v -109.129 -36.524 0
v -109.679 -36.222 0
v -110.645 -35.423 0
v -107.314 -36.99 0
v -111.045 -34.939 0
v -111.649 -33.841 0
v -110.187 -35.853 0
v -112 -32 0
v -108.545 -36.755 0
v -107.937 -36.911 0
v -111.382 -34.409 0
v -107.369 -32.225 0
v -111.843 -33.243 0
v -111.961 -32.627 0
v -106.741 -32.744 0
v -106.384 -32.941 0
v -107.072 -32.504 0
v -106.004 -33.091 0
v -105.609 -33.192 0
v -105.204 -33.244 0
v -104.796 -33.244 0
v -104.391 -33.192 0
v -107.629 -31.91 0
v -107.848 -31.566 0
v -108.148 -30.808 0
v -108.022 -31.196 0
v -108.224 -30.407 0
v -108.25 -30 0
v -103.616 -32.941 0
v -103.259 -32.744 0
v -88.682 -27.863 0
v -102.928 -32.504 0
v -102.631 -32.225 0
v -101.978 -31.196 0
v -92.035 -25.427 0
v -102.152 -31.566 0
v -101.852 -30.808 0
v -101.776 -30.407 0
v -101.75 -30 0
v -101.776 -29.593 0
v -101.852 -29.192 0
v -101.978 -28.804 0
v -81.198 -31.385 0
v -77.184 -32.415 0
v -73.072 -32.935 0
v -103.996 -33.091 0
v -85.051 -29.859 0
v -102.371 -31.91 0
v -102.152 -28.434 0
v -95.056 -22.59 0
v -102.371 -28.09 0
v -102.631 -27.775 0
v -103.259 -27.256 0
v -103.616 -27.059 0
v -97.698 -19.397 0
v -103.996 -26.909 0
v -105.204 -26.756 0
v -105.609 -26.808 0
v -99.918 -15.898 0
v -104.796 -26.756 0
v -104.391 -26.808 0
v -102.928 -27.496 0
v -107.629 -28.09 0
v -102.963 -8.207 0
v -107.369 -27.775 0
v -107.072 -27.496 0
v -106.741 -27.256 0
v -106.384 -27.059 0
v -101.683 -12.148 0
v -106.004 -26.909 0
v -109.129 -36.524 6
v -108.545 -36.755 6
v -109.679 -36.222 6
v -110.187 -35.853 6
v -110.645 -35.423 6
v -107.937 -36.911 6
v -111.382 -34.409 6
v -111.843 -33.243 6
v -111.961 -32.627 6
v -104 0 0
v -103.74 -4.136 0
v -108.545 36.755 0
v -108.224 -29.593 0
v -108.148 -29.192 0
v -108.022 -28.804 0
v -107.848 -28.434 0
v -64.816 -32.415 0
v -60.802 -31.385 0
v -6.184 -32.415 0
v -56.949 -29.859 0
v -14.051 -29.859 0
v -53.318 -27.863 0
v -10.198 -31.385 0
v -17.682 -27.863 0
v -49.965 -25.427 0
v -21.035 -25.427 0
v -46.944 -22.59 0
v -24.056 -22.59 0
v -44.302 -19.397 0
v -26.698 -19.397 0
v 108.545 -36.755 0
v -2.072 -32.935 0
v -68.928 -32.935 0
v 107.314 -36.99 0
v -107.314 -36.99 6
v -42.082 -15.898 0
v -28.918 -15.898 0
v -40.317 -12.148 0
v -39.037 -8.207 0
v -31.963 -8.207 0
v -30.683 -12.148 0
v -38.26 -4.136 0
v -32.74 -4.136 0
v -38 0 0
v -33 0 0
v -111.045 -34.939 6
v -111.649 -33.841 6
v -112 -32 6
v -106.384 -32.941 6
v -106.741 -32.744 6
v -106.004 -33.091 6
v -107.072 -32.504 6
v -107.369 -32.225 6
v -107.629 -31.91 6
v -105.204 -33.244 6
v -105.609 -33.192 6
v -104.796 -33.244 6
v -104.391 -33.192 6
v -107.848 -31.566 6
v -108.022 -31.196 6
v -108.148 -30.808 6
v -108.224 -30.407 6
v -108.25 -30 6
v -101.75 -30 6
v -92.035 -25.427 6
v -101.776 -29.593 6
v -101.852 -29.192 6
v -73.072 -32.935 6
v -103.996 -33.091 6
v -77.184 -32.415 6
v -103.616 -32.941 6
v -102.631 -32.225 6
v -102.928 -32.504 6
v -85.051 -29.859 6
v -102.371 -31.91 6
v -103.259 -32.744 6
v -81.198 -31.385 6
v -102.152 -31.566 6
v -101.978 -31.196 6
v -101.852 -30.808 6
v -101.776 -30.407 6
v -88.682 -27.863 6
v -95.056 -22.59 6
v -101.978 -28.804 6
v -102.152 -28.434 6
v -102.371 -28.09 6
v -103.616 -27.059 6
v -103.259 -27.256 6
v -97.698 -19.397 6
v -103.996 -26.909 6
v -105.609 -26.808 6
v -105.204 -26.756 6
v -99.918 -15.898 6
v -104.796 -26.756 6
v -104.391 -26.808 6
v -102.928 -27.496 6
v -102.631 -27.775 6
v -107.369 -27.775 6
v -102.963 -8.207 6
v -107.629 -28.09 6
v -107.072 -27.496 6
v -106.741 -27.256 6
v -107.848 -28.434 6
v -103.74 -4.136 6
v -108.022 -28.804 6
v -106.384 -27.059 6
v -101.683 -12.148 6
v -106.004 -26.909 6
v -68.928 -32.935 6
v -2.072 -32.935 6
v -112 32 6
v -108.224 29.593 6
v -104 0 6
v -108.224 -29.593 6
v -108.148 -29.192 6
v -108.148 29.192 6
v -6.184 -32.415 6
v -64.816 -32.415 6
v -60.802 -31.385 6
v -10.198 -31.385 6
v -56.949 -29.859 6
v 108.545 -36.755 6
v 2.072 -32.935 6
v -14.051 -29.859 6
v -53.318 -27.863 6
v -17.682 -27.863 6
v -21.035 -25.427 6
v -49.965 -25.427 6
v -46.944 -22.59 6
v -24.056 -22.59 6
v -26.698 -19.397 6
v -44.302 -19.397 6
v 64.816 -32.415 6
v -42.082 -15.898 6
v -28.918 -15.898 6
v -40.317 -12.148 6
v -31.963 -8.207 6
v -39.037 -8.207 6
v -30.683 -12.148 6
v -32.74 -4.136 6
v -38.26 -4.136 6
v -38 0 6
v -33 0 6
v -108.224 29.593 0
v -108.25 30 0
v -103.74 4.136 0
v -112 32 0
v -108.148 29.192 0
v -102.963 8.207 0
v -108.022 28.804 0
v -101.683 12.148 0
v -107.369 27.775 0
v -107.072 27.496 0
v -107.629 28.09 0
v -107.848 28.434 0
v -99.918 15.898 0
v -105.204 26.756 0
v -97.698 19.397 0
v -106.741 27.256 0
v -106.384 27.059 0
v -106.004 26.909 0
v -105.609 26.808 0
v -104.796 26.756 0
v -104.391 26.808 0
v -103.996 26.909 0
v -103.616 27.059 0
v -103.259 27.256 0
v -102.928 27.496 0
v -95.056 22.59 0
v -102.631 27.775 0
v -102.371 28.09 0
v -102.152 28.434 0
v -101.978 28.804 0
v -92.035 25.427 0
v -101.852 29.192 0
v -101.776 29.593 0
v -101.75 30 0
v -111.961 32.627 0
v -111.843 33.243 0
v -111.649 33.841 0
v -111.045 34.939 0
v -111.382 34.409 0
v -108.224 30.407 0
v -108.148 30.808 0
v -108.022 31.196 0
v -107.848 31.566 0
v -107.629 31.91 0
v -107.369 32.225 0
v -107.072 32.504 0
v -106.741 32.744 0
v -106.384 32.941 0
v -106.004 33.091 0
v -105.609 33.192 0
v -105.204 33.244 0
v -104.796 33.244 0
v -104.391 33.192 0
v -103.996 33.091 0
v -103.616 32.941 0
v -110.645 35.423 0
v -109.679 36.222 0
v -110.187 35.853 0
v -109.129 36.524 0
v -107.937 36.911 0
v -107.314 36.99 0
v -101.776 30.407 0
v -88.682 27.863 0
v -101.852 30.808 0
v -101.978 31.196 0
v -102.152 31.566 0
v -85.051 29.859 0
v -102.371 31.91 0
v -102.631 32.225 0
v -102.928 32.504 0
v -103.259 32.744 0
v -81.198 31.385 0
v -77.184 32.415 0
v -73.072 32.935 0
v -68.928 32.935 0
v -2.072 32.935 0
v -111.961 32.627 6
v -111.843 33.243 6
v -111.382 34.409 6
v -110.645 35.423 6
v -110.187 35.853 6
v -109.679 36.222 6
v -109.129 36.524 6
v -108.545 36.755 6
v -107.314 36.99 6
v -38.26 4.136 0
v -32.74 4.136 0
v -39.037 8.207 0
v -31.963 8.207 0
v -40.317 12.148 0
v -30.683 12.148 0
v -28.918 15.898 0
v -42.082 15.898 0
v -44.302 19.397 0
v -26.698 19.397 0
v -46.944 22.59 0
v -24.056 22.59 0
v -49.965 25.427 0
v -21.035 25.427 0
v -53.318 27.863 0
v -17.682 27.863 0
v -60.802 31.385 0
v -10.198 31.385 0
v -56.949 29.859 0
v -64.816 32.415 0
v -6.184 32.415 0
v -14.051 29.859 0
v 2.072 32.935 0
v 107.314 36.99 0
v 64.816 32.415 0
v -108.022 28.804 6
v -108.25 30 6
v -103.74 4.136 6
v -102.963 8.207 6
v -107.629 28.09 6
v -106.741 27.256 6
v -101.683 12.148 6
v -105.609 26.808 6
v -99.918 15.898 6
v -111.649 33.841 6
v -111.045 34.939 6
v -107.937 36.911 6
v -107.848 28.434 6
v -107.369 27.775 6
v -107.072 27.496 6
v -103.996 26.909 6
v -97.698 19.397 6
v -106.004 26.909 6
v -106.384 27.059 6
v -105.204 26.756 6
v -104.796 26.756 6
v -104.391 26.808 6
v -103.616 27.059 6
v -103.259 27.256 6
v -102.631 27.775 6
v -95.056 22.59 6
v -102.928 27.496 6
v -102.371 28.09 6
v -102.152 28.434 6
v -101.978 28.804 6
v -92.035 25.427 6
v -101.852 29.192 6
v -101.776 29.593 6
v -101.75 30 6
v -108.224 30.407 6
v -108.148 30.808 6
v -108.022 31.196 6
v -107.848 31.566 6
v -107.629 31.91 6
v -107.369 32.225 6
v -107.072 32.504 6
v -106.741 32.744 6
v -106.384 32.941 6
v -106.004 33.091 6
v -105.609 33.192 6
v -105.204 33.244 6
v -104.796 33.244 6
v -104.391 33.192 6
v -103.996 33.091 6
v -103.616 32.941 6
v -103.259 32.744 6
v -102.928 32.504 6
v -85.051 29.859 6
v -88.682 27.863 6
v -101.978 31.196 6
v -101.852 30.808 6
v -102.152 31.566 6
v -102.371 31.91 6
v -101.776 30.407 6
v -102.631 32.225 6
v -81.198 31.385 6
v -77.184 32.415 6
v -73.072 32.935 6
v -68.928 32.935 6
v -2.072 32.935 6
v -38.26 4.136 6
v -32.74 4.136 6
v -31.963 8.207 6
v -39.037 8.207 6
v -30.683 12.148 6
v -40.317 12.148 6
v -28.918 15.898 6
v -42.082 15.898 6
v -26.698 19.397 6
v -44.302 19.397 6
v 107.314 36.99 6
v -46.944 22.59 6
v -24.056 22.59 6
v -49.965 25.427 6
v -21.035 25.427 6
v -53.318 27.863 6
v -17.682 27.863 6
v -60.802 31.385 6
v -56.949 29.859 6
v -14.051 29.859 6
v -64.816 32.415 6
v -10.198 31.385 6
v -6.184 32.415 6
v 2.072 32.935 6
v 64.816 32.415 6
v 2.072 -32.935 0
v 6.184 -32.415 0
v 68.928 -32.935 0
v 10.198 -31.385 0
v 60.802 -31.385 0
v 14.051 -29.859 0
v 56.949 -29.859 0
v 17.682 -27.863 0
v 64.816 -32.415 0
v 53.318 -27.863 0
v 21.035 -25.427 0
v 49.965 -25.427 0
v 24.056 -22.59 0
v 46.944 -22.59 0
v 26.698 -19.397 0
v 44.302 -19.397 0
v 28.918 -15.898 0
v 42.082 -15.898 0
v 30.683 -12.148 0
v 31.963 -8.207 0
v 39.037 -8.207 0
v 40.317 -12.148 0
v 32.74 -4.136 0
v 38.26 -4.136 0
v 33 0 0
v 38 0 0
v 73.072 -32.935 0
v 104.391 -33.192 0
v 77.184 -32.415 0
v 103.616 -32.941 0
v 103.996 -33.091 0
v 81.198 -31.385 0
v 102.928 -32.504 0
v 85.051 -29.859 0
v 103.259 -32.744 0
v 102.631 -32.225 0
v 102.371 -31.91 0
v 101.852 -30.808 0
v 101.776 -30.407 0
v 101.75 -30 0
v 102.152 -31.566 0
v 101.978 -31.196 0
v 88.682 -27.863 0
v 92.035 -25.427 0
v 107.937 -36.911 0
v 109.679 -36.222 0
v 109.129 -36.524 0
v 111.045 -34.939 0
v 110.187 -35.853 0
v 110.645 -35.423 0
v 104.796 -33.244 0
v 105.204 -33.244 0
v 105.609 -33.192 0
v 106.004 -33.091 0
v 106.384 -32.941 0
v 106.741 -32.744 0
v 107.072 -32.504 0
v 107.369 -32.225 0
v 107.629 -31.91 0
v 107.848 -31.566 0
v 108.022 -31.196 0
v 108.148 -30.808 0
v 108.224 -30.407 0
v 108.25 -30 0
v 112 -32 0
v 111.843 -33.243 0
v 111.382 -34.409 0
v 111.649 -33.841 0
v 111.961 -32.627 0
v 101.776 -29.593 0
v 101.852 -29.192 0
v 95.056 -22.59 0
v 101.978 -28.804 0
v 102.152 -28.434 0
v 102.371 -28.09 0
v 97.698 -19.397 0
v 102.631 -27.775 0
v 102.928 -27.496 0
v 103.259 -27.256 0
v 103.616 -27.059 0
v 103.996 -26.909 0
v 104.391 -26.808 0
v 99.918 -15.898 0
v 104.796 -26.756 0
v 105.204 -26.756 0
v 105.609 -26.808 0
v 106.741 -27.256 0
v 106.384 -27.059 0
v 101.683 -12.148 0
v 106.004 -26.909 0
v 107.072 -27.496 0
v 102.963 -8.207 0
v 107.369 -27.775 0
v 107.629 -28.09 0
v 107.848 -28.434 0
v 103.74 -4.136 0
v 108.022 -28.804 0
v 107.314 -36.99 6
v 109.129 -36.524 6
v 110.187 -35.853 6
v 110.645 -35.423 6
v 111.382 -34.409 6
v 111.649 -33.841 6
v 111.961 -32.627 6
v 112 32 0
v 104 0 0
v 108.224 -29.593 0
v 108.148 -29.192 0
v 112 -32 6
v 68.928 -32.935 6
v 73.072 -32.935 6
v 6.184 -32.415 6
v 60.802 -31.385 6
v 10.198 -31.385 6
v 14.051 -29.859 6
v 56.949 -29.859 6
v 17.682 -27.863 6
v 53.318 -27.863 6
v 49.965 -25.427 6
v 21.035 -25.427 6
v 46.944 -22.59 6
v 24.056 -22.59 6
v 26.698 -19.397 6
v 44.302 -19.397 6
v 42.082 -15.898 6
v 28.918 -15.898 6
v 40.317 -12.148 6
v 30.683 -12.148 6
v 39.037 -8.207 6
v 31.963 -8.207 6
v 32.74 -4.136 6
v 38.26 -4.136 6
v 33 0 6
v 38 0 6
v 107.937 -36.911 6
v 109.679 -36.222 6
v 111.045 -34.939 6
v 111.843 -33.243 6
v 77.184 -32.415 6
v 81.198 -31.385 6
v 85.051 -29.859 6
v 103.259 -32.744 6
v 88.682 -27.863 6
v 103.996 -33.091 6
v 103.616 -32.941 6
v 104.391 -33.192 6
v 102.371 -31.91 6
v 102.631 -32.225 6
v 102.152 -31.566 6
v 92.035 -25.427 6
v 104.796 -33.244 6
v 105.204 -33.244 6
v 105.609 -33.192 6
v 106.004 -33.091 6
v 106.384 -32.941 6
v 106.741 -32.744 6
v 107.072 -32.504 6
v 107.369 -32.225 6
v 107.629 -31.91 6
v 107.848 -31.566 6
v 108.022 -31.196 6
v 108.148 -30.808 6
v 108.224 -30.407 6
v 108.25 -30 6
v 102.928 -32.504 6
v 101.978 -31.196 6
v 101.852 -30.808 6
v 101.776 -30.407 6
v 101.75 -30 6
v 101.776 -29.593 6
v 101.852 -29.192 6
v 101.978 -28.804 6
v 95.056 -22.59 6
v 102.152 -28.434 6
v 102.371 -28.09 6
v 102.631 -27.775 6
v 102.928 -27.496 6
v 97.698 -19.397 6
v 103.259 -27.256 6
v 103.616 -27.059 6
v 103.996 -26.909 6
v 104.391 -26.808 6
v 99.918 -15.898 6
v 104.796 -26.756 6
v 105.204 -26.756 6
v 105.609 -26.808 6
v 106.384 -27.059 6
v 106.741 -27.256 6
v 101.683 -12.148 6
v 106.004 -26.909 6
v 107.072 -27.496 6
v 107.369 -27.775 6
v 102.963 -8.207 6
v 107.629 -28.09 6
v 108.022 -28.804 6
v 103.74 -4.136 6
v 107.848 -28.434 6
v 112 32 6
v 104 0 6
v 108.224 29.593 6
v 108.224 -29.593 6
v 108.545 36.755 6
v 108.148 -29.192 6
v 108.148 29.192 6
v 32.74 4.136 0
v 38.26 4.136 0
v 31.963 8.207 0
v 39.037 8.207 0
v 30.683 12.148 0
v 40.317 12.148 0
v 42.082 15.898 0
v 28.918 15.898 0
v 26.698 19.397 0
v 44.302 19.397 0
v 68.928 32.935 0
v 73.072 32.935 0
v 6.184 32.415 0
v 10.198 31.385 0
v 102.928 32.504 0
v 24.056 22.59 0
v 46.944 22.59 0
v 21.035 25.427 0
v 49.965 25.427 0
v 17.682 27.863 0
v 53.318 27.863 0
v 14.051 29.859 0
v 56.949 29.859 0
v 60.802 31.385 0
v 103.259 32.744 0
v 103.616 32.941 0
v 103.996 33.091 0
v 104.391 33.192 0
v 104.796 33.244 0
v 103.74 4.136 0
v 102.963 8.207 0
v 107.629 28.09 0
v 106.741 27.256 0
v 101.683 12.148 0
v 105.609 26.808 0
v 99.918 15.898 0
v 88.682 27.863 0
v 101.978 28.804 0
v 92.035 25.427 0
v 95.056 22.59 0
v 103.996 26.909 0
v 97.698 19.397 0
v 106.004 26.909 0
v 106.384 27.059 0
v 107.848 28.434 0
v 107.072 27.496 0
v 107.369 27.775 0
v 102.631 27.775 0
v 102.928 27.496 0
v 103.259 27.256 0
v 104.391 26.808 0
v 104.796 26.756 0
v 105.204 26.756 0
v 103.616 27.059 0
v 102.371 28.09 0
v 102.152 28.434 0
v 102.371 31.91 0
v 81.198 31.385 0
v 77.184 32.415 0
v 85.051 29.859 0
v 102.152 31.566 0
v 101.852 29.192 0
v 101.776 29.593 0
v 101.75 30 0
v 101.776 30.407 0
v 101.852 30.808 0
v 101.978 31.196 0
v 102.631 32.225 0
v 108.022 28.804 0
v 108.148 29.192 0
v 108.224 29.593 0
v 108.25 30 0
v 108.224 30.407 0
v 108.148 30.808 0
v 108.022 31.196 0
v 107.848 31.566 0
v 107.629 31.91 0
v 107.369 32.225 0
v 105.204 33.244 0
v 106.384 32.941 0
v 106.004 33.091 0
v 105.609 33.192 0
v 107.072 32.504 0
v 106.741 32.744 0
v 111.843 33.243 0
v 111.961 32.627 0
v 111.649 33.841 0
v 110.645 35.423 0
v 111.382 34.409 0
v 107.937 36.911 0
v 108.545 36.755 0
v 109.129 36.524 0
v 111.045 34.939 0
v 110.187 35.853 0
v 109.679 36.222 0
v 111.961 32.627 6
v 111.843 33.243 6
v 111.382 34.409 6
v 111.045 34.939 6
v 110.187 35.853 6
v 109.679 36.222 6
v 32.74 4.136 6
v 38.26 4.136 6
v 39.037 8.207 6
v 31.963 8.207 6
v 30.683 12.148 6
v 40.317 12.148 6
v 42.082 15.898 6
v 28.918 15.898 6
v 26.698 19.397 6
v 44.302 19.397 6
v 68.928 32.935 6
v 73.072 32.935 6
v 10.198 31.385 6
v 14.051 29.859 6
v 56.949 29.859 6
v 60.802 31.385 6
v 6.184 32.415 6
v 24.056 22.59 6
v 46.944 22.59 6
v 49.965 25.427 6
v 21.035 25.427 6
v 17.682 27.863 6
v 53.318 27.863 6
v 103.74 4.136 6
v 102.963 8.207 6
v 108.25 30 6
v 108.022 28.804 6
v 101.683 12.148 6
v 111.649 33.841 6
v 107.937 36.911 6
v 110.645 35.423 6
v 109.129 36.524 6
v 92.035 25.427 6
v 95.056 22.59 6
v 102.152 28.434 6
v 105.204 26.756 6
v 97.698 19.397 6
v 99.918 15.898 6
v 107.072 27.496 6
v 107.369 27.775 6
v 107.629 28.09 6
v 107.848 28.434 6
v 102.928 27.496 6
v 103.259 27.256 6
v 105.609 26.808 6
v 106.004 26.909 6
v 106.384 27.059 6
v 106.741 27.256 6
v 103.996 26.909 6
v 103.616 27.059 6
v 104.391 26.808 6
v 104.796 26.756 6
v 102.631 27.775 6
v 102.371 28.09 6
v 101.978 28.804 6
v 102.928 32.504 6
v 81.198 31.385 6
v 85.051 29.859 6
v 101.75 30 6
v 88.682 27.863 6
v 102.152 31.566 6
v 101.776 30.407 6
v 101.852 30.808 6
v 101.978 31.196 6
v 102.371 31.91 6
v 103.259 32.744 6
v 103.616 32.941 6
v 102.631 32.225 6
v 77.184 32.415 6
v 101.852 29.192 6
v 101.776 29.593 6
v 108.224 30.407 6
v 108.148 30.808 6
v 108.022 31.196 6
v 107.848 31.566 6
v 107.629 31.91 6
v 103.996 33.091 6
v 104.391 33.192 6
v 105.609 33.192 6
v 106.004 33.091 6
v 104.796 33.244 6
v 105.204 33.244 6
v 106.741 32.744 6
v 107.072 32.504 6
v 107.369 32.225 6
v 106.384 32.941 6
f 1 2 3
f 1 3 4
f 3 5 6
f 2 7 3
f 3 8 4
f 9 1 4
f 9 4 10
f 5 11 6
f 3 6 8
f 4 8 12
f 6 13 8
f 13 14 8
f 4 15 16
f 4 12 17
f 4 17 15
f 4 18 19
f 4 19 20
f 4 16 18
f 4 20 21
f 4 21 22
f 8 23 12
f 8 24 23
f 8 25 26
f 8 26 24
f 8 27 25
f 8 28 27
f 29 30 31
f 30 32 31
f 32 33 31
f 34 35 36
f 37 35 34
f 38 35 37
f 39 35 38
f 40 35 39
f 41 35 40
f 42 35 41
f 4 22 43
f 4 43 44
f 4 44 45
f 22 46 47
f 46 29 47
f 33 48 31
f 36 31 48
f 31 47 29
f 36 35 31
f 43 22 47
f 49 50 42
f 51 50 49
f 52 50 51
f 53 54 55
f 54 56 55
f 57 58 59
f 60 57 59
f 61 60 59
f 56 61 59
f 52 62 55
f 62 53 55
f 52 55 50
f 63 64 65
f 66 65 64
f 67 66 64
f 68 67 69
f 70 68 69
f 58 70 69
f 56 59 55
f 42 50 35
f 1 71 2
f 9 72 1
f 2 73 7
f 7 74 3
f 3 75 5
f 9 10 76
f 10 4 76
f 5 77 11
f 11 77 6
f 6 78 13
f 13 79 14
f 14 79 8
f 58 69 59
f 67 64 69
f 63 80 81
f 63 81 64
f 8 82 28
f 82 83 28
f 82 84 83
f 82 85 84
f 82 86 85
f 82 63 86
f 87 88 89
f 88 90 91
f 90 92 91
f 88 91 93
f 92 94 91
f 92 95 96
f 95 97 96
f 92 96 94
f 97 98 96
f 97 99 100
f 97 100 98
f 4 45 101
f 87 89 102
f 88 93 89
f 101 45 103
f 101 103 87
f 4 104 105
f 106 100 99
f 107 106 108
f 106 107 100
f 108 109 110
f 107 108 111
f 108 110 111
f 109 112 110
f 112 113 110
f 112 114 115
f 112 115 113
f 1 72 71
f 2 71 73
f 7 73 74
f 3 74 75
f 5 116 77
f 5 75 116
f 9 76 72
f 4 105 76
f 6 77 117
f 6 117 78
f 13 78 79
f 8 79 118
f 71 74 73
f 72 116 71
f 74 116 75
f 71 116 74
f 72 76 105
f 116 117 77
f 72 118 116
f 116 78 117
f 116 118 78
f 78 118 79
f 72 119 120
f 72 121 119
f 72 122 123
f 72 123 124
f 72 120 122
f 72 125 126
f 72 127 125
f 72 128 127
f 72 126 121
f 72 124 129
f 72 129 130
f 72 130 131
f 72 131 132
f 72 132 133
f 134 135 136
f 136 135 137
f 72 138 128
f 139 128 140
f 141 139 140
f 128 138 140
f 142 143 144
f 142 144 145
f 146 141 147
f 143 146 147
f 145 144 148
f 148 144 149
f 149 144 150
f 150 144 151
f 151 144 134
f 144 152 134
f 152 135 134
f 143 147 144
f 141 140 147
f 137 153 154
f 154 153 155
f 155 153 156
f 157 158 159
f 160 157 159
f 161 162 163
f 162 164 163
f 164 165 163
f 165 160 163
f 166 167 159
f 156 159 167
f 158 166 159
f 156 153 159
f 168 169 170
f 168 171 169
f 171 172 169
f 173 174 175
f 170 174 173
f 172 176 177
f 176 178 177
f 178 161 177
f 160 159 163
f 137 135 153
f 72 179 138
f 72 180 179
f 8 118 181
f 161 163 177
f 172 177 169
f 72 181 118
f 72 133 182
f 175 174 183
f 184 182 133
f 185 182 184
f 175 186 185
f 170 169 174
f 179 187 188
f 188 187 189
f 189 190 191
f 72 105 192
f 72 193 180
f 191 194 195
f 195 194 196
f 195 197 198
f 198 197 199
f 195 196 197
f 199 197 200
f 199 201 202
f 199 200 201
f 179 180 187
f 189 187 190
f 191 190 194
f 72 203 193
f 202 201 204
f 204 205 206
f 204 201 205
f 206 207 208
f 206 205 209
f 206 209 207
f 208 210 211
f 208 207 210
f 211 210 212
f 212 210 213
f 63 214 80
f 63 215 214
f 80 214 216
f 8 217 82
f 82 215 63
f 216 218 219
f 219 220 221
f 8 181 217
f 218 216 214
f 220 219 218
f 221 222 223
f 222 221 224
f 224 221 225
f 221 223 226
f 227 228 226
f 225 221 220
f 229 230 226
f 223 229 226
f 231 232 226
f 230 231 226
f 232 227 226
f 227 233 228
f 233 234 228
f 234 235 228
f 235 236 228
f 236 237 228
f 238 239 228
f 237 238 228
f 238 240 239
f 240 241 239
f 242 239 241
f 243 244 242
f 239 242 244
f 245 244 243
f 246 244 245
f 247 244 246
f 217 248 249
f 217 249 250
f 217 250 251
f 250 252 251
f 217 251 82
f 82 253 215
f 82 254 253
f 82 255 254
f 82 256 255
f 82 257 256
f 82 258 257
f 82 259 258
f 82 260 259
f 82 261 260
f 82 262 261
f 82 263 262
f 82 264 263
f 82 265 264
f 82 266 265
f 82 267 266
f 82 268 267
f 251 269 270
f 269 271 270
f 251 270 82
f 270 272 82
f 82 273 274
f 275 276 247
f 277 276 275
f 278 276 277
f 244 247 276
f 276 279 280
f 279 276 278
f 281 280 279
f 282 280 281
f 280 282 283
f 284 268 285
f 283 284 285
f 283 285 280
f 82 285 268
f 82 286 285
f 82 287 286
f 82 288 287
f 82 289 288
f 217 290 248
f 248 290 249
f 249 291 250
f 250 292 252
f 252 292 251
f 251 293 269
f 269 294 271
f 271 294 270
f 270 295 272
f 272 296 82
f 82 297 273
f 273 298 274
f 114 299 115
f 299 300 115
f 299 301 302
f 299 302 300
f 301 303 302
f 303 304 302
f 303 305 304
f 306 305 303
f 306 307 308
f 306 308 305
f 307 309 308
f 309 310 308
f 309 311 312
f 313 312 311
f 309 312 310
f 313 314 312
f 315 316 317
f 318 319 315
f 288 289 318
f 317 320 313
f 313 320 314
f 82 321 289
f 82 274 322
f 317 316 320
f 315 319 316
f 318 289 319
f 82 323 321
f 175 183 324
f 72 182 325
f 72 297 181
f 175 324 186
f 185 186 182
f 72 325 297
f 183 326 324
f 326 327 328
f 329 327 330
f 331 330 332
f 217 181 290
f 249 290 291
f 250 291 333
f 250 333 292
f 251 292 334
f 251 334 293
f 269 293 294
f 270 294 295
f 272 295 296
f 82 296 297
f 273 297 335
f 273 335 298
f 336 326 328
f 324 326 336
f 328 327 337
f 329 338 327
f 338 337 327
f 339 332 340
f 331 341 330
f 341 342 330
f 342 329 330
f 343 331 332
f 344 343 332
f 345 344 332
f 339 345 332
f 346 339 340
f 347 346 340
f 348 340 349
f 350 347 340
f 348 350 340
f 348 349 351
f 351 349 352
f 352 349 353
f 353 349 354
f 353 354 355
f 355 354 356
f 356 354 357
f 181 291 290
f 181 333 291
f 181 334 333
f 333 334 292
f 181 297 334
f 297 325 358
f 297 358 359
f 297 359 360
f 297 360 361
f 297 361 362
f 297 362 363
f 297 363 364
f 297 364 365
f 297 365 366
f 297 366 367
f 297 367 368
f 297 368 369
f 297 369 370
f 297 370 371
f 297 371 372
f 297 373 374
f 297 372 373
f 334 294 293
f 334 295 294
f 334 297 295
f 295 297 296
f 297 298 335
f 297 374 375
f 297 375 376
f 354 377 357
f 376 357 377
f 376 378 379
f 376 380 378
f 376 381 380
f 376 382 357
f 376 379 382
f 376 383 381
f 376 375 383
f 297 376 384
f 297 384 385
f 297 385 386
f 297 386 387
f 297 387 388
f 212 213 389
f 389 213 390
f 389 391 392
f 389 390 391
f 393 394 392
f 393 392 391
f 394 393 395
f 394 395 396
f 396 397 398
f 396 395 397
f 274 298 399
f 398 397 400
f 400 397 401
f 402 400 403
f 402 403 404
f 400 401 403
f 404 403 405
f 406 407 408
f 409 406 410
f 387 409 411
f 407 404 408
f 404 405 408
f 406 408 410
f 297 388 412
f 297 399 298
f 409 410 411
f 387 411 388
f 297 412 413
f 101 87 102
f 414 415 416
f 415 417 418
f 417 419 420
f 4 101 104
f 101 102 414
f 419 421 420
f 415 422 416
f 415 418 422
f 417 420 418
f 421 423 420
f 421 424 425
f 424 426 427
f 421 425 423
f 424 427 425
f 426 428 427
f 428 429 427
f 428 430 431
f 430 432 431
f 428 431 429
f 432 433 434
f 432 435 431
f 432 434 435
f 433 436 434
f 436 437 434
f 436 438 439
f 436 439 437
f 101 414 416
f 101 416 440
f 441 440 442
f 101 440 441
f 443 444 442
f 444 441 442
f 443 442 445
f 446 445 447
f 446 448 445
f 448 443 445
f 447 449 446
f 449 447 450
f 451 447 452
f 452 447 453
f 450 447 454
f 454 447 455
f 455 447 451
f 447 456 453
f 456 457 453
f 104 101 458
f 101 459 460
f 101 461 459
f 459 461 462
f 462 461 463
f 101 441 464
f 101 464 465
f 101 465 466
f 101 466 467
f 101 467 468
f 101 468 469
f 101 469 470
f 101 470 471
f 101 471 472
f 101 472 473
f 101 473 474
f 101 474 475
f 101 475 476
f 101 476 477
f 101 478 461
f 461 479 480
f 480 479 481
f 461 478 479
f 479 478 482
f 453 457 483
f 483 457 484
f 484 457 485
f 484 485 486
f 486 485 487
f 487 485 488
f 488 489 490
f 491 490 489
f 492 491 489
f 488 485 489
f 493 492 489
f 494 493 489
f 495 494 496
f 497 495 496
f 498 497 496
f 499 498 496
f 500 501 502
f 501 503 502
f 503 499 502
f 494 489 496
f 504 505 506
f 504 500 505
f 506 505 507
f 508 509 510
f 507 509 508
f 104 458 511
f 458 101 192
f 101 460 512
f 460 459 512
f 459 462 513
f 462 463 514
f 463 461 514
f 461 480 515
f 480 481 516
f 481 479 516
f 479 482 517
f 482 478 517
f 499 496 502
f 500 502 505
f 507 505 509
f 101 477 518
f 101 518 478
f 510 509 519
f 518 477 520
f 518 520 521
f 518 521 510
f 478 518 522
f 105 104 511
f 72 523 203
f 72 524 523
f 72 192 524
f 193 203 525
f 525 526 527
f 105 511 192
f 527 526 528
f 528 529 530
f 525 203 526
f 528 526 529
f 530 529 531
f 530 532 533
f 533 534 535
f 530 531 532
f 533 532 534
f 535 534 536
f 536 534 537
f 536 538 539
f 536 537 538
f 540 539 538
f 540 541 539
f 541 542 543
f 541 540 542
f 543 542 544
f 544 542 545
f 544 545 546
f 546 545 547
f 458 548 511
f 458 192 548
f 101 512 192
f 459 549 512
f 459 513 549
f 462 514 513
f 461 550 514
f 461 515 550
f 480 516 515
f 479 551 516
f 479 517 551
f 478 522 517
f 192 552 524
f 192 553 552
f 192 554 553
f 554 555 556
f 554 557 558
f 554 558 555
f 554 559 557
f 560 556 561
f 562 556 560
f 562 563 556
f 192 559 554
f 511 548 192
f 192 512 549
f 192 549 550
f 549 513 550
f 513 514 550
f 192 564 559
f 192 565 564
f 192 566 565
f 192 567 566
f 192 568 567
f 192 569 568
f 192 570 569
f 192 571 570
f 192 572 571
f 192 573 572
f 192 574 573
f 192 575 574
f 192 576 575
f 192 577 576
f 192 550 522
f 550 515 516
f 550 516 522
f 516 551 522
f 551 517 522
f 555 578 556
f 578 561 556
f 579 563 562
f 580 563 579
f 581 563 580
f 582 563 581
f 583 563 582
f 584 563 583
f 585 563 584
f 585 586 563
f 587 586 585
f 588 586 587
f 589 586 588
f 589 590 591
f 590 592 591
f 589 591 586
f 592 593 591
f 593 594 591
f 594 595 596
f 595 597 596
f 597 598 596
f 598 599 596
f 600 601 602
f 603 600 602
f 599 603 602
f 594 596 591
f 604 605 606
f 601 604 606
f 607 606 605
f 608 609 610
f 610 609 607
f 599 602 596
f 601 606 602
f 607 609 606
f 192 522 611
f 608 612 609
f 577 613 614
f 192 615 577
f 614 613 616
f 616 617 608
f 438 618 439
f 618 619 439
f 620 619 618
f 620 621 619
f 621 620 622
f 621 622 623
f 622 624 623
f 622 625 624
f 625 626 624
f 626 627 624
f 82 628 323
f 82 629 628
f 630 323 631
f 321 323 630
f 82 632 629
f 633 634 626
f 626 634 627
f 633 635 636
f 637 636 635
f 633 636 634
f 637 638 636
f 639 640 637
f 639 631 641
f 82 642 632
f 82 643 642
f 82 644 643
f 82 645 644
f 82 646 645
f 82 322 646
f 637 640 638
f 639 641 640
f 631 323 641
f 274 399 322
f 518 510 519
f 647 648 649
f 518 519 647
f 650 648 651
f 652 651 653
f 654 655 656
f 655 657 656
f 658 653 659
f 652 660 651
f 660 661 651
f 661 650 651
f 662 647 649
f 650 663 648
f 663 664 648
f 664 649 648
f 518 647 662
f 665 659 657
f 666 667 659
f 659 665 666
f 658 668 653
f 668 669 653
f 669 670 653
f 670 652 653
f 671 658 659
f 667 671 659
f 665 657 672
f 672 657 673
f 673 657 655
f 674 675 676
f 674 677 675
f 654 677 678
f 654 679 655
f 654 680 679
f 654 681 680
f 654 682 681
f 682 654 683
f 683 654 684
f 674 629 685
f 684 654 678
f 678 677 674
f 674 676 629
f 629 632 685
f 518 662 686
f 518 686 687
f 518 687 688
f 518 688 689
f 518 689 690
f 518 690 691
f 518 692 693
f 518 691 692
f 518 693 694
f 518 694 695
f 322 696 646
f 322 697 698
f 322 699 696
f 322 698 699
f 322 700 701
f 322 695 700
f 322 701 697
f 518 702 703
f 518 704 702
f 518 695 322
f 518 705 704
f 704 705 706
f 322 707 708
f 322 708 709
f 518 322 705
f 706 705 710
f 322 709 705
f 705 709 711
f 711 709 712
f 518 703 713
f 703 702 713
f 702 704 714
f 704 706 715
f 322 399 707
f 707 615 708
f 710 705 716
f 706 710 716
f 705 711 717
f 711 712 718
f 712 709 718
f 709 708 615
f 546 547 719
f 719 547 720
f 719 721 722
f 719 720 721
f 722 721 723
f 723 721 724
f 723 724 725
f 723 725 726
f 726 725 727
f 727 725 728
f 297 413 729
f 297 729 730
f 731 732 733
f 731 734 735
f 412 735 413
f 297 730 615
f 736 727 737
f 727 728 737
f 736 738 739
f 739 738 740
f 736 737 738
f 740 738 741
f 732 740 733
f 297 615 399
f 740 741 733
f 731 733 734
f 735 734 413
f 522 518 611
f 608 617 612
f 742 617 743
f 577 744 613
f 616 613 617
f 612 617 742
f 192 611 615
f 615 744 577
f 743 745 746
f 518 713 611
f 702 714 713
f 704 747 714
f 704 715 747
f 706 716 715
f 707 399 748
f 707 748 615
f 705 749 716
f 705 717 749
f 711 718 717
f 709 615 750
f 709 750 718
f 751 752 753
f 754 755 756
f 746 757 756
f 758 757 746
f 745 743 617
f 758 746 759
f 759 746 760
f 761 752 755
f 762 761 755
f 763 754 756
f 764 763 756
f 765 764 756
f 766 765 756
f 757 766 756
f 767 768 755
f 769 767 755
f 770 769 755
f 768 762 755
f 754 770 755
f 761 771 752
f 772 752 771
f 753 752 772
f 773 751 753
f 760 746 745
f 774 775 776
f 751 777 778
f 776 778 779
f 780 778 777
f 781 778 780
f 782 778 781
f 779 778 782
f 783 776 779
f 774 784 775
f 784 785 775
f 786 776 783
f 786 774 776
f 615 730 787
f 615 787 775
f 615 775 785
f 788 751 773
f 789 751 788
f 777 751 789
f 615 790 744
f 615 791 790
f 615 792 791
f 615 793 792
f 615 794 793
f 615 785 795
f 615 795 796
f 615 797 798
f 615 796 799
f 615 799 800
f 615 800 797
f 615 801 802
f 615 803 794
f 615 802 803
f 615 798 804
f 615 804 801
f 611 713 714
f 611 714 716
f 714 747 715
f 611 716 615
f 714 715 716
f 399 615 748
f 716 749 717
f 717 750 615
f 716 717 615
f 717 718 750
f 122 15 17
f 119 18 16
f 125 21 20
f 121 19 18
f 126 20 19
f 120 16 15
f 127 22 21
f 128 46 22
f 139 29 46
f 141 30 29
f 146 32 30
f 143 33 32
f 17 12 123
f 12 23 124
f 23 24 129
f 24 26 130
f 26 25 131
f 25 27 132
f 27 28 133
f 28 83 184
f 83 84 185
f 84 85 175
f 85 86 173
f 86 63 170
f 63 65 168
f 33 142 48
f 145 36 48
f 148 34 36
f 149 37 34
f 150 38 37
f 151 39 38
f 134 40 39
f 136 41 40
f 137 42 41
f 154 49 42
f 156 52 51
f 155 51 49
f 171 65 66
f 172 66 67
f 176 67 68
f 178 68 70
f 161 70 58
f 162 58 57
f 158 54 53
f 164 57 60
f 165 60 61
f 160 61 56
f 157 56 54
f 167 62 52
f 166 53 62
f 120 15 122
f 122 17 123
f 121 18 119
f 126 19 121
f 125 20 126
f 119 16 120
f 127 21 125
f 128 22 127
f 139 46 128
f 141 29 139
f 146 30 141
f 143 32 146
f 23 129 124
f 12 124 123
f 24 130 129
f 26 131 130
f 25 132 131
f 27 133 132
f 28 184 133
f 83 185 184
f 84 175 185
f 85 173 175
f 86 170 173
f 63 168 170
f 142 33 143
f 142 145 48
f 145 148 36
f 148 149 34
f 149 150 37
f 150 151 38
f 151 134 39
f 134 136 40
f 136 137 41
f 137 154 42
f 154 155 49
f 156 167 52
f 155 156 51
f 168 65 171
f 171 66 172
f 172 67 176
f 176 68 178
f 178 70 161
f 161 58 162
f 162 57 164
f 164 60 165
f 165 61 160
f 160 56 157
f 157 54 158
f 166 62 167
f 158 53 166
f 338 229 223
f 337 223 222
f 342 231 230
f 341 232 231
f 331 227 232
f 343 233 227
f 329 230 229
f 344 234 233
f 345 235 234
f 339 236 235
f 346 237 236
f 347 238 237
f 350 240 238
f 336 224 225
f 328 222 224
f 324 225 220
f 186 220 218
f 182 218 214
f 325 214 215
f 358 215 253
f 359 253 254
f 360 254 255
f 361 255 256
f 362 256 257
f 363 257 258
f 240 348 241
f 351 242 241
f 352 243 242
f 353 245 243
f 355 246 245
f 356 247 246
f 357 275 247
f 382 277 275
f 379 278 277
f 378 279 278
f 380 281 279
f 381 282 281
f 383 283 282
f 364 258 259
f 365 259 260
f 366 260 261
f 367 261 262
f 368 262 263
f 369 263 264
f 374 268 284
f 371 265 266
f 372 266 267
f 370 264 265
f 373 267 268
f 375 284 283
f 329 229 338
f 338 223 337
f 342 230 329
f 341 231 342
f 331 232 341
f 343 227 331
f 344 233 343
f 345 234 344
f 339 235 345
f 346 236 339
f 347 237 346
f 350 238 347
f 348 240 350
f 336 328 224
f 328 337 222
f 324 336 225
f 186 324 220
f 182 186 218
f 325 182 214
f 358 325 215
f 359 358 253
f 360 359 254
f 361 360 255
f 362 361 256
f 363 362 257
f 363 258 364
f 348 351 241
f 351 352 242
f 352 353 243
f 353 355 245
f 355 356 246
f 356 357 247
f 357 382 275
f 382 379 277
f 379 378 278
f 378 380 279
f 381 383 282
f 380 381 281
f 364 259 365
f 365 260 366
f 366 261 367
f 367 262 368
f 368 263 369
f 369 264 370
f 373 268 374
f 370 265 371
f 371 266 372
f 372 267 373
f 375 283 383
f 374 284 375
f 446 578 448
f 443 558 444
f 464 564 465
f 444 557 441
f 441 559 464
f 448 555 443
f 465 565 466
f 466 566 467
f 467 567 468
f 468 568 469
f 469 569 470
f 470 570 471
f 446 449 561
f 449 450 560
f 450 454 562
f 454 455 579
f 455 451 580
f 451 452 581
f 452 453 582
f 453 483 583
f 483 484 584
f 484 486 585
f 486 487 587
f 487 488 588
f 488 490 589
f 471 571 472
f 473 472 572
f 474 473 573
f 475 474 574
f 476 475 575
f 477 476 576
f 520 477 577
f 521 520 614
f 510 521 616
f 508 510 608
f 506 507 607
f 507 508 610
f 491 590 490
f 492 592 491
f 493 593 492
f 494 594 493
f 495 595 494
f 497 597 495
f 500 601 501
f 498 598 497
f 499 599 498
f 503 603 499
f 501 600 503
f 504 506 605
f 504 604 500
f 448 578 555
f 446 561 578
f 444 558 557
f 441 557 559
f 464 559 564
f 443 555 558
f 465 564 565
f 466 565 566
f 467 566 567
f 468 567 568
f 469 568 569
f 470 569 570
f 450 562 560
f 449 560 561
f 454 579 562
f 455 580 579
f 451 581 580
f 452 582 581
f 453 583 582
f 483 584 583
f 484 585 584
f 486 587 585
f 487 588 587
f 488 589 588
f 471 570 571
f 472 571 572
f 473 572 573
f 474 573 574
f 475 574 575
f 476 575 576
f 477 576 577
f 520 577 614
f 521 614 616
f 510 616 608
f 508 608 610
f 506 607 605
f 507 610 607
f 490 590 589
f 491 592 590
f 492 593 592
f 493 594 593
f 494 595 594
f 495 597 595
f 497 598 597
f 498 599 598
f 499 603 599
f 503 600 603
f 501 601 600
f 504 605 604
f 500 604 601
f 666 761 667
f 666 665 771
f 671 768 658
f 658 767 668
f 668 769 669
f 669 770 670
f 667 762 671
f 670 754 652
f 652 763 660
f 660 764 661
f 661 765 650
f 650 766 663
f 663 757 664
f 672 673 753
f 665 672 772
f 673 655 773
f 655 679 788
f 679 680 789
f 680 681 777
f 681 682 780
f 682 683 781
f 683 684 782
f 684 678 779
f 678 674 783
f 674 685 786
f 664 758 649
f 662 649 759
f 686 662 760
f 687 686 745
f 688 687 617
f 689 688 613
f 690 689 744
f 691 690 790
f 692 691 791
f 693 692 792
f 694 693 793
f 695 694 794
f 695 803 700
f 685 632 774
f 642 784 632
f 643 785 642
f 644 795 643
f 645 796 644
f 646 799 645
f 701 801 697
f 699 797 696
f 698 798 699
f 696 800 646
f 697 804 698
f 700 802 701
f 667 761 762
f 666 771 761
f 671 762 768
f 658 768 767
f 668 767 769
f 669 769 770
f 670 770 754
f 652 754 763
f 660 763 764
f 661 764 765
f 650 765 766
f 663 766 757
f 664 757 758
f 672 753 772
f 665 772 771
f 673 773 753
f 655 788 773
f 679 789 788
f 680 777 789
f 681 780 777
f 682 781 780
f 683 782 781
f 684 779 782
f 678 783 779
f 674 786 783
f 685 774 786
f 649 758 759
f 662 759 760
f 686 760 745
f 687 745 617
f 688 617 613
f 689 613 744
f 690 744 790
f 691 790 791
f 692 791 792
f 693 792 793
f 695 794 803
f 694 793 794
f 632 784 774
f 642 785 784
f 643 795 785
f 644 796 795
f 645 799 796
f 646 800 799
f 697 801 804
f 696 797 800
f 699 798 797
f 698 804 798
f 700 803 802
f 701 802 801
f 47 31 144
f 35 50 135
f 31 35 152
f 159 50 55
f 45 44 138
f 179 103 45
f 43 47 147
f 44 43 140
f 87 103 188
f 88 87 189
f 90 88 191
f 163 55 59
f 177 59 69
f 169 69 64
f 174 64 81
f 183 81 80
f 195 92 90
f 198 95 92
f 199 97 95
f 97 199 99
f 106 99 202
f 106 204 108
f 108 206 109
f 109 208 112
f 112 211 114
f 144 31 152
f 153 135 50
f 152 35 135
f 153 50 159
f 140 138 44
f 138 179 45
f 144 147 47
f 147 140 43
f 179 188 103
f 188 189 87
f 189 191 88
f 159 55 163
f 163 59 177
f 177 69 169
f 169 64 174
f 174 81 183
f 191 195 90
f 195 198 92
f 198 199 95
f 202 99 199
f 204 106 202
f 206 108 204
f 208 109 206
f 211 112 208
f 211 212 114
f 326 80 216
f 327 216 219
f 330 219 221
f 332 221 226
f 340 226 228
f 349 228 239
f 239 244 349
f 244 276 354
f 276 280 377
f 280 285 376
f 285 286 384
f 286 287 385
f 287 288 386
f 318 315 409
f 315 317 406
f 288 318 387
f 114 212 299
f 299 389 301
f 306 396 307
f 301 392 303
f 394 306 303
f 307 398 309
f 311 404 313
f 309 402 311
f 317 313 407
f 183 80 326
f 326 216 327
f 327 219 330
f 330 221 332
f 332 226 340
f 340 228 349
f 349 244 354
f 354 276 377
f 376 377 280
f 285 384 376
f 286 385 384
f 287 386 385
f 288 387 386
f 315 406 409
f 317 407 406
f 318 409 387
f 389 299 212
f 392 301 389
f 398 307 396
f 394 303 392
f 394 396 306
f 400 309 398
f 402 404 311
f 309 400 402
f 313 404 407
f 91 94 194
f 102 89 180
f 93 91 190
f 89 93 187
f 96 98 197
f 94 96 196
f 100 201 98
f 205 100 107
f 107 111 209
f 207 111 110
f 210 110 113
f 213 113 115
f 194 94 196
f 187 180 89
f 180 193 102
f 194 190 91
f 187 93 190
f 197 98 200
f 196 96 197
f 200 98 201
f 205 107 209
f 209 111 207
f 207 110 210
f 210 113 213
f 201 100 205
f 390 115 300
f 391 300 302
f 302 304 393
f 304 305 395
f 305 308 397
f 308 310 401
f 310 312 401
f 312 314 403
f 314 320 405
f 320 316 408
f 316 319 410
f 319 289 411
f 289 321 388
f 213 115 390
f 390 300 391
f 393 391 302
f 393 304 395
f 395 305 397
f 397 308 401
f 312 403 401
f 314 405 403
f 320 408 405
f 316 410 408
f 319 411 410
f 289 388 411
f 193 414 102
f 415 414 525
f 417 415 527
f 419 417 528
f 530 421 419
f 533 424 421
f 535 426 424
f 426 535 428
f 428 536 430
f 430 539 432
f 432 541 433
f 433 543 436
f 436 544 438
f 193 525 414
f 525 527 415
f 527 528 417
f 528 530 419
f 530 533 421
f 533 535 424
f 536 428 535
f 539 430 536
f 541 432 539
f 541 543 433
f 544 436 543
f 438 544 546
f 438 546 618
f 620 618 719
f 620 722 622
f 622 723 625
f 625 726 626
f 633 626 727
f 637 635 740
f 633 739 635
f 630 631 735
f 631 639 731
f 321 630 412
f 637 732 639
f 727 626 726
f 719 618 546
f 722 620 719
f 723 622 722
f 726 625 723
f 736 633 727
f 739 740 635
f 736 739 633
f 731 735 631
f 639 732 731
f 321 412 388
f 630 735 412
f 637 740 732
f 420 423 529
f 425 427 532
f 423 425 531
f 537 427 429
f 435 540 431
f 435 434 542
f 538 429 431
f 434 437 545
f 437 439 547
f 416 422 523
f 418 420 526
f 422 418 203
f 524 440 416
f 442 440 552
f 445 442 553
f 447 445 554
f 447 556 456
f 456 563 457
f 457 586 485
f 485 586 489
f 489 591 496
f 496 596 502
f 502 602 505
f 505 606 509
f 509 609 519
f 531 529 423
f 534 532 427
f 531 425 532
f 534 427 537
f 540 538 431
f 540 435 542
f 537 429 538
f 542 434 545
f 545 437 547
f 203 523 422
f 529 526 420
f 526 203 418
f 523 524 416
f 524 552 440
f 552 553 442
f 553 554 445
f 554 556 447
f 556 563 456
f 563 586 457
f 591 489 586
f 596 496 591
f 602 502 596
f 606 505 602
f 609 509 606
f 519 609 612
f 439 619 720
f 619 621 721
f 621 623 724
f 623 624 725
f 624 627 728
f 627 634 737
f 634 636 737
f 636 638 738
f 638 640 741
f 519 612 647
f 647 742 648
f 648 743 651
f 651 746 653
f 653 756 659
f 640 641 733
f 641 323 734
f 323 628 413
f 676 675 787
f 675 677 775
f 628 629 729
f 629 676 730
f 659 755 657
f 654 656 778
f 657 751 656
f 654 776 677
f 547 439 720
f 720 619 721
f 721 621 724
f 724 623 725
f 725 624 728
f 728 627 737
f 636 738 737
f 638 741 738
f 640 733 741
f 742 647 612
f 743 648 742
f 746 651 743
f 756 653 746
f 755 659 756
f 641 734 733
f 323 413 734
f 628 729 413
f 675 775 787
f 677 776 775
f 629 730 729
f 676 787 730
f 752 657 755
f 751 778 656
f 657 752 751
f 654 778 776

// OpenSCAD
$fn = 50;

difference() {
	union() {
		hull() {
			translate(v = [-107.0, 32.0, 0]) {
				cylinder(h = 6, r = 5);
			}
			translate(v = [107.0, 32.0, 0]) {
				cylinder(h = 6, r = 5);
			}
			translate(v = [-107.0, -32.0, 0]) {
				cylinder(h = 6, r = 5);
			}
			translate(v = [107.0, -32.0, 0]) {
				cylinder(h = 6, r = 5);
			}
		}
	}
	union() {
		translate(v = [-105.0, -30.0, -100.0]) {
			cylinder(h = 200, r = 3.25);
		}
		translate(v = [-105.0, 30.0, -100.0]) {
			cylinder(h = 200, r = 3.25);
		}
		translate(v = [105.0, -30.0, -100.0]) {
			cylinder(h = 200, r = 3.25);
		}
		translate(v = [105.0, 30.0, -100.0]) {
			cylinder(h = 200, r = 3.25);
		}
		translate(v = [-105.0, -30.0, -100.0]) {
			cylinder(h = 200, r = 1.8);
		}
		translate(v = [-105.0, 30.0, -100.0]) {
			cylinder(h = 200, r = 1.8);
		}
		translate(v = [105.0, -30.0, -100.0]) {
			cylinder(h = 200, r = 1.8);
		}
		translate(v = [105.0, 30.0, -100.0]) {
			cylinder(h = 200, r = 1.8);
		}
		translate(v = [-71.0, 0, 0.0]) {
			cylinder(h = 6, r = 33.0);
		}
		cylinder(h = 6, r = 33.0);
		translate(v = [71.0, 0, 0.0]) {
			cylinder(h = 6, r = 33.0);
		}
	}
}
